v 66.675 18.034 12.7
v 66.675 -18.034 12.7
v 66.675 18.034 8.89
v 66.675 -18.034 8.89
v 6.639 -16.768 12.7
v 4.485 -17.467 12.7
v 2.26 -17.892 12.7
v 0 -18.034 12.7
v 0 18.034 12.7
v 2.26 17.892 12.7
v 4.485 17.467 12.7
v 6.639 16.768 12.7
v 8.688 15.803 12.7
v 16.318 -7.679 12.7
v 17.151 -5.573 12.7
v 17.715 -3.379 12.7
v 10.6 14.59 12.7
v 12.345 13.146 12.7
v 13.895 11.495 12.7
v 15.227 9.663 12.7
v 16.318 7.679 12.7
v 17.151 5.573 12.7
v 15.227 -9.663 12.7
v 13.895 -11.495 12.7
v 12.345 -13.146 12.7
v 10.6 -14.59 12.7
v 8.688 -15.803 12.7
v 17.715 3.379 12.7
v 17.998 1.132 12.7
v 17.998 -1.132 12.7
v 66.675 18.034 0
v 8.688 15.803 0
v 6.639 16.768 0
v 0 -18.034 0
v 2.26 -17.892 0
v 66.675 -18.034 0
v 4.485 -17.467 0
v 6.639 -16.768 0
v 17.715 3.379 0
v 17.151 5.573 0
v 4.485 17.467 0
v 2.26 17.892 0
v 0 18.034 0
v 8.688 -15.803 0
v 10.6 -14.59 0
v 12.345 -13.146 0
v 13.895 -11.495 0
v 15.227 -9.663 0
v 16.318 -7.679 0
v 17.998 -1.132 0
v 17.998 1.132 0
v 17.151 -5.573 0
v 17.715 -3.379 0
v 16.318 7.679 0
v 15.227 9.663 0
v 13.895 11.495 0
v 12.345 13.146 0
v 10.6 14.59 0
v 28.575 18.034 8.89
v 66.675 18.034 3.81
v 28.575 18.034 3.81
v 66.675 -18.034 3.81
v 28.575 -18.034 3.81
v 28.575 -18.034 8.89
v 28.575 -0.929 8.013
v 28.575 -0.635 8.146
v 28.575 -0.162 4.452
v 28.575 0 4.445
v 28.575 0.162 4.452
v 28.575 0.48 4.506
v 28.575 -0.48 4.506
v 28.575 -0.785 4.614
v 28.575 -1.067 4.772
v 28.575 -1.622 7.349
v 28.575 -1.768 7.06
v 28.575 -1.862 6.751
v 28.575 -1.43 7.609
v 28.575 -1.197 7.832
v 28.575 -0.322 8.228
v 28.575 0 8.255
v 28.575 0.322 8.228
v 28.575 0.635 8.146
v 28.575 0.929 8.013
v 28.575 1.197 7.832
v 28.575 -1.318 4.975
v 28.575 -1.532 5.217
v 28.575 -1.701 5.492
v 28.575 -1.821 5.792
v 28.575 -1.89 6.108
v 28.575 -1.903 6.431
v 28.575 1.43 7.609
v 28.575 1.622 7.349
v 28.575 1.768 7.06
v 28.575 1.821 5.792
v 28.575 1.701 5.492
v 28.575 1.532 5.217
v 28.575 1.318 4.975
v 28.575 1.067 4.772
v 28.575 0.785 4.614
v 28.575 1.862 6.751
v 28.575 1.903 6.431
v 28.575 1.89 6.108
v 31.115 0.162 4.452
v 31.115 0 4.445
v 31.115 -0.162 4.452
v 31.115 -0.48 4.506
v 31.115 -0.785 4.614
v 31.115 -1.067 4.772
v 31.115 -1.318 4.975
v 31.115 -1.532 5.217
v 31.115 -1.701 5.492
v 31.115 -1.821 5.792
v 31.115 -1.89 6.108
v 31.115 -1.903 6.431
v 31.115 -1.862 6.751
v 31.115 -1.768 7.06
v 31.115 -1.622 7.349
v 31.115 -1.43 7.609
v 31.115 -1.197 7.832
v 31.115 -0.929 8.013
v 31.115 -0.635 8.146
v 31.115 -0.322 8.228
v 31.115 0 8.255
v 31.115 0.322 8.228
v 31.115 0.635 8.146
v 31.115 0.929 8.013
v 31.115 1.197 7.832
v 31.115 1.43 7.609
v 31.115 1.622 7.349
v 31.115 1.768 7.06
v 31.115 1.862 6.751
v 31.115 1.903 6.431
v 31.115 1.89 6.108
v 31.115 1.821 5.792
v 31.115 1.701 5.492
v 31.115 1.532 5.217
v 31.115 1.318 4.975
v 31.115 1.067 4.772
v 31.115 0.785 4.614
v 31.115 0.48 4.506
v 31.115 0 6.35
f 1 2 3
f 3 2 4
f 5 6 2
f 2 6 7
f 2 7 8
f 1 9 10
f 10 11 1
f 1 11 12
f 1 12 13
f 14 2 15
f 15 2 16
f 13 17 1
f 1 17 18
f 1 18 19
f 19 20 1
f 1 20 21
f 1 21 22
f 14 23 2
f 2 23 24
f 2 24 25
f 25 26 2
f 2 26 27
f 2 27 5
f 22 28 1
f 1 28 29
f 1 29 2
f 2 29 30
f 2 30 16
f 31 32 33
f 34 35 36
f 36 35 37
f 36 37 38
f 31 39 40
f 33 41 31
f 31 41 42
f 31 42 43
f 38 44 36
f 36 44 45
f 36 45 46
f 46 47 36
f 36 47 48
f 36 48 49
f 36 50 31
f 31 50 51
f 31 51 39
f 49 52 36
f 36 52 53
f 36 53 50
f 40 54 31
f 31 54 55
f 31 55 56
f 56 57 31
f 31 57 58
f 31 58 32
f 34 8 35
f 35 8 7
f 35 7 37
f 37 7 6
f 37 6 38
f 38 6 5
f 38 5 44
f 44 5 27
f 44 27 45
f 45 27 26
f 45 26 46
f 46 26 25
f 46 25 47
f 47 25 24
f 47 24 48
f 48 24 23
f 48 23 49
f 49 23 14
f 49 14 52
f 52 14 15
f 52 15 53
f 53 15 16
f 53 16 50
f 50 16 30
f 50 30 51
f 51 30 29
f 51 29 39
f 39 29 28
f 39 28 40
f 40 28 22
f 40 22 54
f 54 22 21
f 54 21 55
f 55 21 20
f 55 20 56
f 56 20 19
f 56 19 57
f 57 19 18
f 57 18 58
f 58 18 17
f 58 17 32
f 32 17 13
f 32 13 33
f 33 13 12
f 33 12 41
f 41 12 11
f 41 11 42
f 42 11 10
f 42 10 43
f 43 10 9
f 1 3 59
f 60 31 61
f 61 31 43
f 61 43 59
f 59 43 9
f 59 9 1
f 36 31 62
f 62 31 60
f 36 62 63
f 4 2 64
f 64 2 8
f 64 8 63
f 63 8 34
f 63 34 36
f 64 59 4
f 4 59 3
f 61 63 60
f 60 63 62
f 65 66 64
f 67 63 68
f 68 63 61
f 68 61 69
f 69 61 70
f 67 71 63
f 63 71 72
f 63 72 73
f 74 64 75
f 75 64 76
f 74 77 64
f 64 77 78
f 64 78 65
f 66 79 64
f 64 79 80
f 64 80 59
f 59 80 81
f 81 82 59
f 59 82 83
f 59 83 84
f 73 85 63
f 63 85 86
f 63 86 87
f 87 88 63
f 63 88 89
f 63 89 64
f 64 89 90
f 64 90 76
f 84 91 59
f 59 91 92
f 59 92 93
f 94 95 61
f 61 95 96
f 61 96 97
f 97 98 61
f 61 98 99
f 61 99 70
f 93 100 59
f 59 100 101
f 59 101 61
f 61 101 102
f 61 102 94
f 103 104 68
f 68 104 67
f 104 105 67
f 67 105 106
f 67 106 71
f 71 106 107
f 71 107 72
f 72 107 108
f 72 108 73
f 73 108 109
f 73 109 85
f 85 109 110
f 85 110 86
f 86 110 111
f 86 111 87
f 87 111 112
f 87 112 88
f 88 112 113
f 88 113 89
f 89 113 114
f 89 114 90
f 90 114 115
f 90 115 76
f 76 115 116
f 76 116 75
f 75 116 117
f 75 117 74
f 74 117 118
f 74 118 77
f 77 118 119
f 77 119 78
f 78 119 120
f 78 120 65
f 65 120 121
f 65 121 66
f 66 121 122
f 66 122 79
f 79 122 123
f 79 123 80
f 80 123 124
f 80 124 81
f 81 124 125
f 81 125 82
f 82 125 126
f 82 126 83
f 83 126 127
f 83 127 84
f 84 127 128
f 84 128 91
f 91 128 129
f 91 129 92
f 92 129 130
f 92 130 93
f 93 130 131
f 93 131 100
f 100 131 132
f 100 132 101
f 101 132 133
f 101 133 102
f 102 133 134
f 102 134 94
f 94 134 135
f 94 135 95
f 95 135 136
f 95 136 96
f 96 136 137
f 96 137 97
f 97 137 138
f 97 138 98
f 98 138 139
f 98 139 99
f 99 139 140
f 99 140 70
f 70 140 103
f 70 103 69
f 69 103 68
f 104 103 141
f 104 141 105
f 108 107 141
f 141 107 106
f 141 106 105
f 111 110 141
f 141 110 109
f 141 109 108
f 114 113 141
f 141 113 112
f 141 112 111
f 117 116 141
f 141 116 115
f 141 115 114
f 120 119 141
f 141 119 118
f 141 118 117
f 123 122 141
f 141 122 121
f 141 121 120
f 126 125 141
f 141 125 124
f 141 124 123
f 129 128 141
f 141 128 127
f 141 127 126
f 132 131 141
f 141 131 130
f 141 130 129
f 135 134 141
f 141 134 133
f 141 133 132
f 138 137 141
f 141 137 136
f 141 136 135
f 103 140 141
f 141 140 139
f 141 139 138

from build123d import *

# Parameters (mm, degrees)
SKETCH1_R                = 19.939
CIRCLE_EXTRUDE_DEPTH     = 12.7
SKETCH3_W                = 12.7
SKETCH3_H                = 39.878
RECTANGLE_EXTRUDE_DEPTH  = 68.58
SKETCH2_R                = 18.034
CRICLE_CUT_DEPTH         = 73.54012766
SKETCH4_OUTSIDE_W        = 110.101
SKETCH4_OUTSIDE_H        = 61.46
SKETCH4_OUTSIDE_W_2      = 66.675
SKETCH4_OUTSIDE_H_2      = 36.068
FRAME_CUT_DEPTH          = 73.54012766
SKETCH13_W               = 5.08
SKETCH13_H               = 36.068
BACK_CUT_DEPTH           = 38.1
SKETCH14_R               = 1.905
FOR_SPRING_EXTRUDE_DEPTH = 2.54


with BuildPart() as part:
    # Sketch1 → circle extrude (new body)
    with BuildSketch(Plane.XY):
        Circle(SKETCH1_R)
    extrude(amount=CIRCLE_EXTRUDE_DEPTH)

    # Sketch3 → rectangle extrude (add)
    with BuildSketch(Plane(origin=(0, 0, 0), x_dir=(0, 0, -1), z_dir=(1, 0, 0))):
        with Locations((-6.35, 0)):
            Rectangle(SKETCH3_W, SKETCH3_H)
    extrude(amount=RECTANGLE_EXTRUDE_DEPTH)

    # Sketch2 → cricle cut (cut, through all)
    with BuildSketch(Plane.XY.offset(12.7)):
        Circle(SKETCH2_R)
    extrude(amount=-CRICLE_CUT_DEPTH, mode=Mode.SUBTRACT)

    # Sketch4 outside → frame cut (cut, through all)
    with BuildSketch(Plane.XY.offset(12.7)):
        with Locations((24.3205, 0)):
            Rectangle(SKETCH4_OUTSIDE_W, SKETCH4_OUTSIDE_H)
        with Locations((33.3375, 0)):
            Rectangle(SKETCH4_OUTSIDE_W_2, SKETCH4_OUTSIDE_H_2, mode=Mode.SUBTRACT)
    extrude(amount=-FRAME_CUT_DEPTH, mode=Mode.SUBTRACT)

    # Sketch13 → back cut (cut)
    with BuildSketch(Plane(origin=(66.675, 0, 0), x_dir=(0, 0, -1), z_dir=(1, 0, 0))):
        with Locations((-6.35, 0)):
            Rectangle(SKETCH13_W, SKETCH13_H)
    extrude(amount=-BACK_CUT_DEPTH, mode=Mode.SUBTRACT)

    # Sketch14 → for spring extrude (add)
    with BuildSketch(Plane(origin=(28.575, 0, 0), x_dir=(0, 0, -1), z_dir=(1, 0, 0))):
        with Locations((-6.35, 0)):
            Circle(SKETCH14_R)
    extrude(amount=FOR_SPRING_EXTRUDE_DEPTH)


solid = part.part
